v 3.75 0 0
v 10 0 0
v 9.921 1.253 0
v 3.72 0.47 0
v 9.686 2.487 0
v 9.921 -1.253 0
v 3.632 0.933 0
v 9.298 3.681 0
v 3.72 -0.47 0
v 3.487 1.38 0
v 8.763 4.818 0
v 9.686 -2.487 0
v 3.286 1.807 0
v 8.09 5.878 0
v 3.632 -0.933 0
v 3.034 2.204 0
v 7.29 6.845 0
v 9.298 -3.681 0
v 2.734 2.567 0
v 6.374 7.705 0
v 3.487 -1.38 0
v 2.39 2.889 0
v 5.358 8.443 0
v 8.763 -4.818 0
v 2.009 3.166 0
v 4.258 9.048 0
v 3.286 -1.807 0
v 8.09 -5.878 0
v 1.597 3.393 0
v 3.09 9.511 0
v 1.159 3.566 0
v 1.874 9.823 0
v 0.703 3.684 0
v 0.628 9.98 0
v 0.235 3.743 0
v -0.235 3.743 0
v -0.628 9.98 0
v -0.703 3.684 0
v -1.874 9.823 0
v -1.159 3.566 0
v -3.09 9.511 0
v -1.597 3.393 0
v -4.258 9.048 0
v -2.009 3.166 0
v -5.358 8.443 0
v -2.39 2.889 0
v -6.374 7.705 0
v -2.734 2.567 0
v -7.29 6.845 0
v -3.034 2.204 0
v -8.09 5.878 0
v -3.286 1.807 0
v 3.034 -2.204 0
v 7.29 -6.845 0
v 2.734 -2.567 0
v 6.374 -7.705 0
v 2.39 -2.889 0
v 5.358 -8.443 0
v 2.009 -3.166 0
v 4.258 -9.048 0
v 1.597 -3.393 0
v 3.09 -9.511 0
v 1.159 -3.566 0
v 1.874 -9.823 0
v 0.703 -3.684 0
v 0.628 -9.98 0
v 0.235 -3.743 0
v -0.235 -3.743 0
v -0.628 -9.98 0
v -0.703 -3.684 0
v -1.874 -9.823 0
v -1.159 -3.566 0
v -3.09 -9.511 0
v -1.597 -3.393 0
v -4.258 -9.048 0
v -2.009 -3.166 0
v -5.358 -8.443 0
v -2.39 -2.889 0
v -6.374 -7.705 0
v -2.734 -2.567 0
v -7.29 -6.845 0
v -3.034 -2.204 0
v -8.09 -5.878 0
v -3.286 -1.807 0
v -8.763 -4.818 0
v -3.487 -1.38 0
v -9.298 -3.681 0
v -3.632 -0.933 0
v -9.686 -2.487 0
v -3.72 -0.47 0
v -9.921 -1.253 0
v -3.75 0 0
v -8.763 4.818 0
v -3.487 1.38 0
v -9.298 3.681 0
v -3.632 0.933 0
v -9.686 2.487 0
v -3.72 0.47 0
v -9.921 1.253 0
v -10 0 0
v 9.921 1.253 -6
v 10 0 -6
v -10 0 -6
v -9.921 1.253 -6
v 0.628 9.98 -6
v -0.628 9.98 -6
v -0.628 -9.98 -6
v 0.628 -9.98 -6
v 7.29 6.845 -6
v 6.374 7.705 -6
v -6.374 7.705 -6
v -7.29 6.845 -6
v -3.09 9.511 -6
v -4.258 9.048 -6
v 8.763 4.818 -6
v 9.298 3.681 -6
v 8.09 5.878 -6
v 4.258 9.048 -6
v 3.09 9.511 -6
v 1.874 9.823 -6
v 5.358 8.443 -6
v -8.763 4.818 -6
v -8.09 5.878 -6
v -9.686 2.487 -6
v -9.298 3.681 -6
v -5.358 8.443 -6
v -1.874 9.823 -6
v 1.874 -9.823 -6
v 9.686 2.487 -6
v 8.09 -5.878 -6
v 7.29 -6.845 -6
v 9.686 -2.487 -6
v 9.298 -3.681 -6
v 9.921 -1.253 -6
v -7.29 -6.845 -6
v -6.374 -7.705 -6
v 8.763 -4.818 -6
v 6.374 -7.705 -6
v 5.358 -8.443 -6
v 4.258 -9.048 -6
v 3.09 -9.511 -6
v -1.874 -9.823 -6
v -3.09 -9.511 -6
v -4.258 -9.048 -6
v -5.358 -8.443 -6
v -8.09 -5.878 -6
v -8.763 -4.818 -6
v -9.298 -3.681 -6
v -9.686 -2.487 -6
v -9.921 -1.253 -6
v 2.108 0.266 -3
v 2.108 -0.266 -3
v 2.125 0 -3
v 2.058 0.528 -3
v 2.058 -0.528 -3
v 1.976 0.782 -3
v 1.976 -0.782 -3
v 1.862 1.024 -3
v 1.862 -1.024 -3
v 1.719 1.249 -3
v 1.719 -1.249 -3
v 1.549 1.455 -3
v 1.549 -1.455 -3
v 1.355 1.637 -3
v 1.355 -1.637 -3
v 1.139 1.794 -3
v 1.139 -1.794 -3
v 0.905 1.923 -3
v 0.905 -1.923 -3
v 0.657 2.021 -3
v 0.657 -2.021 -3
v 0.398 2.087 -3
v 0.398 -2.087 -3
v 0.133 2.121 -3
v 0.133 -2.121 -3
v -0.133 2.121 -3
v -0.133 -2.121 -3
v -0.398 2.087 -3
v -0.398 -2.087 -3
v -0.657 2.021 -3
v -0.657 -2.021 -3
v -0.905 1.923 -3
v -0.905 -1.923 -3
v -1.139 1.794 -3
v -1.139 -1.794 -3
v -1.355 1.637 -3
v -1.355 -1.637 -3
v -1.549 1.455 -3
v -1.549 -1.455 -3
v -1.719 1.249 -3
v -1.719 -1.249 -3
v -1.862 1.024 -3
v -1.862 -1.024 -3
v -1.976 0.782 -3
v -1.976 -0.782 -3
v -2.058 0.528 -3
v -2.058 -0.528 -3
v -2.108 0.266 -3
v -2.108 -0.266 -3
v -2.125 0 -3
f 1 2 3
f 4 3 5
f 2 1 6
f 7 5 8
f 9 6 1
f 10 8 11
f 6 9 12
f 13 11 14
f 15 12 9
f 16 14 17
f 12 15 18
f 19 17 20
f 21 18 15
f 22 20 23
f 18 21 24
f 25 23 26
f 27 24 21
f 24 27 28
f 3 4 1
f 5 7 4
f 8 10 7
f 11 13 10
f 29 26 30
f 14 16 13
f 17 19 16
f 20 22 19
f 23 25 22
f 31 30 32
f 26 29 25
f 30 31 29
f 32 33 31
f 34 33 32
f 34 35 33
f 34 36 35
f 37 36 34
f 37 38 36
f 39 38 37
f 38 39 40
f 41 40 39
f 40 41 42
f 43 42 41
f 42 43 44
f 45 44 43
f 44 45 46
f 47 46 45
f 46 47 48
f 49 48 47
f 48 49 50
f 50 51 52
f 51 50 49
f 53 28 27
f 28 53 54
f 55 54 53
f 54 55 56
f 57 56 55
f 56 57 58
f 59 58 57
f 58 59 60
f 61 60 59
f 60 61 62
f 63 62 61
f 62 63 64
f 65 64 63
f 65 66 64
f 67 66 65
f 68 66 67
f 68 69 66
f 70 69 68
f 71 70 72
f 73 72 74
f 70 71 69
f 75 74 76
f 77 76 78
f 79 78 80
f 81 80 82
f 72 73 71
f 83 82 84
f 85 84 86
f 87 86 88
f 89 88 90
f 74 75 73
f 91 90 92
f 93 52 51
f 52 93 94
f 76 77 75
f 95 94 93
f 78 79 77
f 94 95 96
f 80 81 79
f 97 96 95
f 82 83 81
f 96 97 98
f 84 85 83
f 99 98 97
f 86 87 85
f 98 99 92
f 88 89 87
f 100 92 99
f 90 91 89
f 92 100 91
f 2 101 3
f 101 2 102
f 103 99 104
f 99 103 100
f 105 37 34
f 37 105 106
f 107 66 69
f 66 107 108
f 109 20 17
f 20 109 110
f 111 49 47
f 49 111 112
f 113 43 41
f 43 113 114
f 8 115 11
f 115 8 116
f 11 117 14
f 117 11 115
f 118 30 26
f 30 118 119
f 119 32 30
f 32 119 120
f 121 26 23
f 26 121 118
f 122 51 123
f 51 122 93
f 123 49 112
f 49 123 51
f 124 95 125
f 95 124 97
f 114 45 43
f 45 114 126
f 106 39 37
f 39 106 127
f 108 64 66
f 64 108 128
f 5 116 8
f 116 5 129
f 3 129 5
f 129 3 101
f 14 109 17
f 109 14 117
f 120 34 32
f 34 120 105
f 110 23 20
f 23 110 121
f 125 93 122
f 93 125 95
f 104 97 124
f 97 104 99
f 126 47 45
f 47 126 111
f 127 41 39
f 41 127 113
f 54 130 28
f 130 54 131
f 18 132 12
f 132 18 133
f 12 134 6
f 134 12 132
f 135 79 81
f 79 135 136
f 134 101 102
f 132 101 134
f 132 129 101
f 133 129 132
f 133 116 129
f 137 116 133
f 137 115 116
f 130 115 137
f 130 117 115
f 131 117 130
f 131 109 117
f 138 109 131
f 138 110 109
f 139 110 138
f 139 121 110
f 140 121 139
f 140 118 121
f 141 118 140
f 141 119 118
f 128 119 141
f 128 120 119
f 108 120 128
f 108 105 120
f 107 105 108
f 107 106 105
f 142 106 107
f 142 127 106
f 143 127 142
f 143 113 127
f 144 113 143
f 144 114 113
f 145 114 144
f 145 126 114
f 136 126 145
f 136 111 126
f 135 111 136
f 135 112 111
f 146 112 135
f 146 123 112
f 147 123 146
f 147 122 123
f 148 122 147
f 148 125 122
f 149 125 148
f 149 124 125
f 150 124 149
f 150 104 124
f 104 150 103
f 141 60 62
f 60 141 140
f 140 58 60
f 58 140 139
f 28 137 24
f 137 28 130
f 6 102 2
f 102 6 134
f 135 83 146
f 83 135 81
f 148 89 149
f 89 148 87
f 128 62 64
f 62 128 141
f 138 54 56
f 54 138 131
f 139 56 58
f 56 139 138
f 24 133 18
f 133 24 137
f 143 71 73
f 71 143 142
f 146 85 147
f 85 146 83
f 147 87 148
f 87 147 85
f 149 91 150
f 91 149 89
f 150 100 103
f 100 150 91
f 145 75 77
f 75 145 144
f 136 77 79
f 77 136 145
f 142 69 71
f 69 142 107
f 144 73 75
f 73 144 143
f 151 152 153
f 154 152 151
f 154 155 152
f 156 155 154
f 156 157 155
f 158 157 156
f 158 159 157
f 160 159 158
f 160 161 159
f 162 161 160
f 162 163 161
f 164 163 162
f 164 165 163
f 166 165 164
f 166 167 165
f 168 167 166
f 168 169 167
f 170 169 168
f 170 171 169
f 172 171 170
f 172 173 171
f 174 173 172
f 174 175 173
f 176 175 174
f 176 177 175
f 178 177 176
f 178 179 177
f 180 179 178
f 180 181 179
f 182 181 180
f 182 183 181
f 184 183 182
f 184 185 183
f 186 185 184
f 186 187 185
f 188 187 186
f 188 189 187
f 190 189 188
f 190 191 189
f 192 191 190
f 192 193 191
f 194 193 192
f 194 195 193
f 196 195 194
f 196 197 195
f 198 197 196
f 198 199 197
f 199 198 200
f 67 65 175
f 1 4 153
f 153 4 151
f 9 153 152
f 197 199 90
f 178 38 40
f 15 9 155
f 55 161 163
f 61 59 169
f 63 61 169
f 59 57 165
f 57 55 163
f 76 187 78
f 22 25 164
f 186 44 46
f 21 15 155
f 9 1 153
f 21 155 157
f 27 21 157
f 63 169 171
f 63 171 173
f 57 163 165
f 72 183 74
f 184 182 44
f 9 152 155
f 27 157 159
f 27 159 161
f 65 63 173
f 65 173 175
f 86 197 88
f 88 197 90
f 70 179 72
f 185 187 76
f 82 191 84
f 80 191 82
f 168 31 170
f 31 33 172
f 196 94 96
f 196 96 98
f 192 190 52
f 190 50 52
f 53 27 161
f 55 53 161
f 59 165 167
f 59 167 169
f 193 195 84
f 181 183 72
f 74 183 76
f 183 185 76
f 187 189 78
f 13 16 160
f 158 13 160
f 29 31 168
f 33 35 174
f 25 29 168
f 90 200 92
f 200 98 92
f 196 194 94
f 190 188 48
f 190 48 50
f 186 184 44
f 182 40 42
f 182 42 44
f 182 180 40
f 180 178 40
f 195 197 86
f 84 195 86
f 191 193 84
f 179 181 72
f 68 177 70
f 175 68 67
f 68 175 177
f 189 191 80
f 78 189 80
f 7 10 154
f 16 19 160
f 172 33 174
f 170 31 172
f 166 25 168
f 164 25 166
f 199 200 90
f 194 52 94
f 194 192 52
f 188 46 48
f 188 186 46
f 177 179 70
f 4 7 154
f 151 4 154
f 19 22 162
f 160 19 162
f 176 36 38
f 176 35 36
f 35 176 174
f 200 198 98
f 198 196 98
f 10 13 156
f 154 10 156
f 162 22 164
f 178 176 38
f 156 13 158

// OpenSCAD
$fn = 50;


difference() {
	union() {
		translate(v = [0, 0, -3.0000000000]) {
			cylinder(h = 3, r = 7.0000000000);
		}
		translate(v = [0, 0, -6.0000000000]) {
			cylinder(h = 6, r = 10.0000000000);
		}
	}
	union() {
		translate(v = [0, 0, 0]) {
			rotate(a = [0, 0, 0]) {
				difference() {
					union() {
						#translate(v = [0, 0, -3.0000000000]) {
							cylinder(h = 3, r = 2.0000000000);
						}
						#translate(v = [0, 0, -3]) {
							cylinder(h = 3, r1 = 2.1250000000, r2 = 3.7500000000);
						}
						#translate(v = [0, 0, -3.0000000000]) {
							cylinder(h = 3, r = 2.1250000000);
						}
						#translate(v = [0, 0, -3.0000000000]) {
							cylinder(h = 3, r = 2.0000000000);
						}
					}
					union();
				}
			}
		}
	}
}
